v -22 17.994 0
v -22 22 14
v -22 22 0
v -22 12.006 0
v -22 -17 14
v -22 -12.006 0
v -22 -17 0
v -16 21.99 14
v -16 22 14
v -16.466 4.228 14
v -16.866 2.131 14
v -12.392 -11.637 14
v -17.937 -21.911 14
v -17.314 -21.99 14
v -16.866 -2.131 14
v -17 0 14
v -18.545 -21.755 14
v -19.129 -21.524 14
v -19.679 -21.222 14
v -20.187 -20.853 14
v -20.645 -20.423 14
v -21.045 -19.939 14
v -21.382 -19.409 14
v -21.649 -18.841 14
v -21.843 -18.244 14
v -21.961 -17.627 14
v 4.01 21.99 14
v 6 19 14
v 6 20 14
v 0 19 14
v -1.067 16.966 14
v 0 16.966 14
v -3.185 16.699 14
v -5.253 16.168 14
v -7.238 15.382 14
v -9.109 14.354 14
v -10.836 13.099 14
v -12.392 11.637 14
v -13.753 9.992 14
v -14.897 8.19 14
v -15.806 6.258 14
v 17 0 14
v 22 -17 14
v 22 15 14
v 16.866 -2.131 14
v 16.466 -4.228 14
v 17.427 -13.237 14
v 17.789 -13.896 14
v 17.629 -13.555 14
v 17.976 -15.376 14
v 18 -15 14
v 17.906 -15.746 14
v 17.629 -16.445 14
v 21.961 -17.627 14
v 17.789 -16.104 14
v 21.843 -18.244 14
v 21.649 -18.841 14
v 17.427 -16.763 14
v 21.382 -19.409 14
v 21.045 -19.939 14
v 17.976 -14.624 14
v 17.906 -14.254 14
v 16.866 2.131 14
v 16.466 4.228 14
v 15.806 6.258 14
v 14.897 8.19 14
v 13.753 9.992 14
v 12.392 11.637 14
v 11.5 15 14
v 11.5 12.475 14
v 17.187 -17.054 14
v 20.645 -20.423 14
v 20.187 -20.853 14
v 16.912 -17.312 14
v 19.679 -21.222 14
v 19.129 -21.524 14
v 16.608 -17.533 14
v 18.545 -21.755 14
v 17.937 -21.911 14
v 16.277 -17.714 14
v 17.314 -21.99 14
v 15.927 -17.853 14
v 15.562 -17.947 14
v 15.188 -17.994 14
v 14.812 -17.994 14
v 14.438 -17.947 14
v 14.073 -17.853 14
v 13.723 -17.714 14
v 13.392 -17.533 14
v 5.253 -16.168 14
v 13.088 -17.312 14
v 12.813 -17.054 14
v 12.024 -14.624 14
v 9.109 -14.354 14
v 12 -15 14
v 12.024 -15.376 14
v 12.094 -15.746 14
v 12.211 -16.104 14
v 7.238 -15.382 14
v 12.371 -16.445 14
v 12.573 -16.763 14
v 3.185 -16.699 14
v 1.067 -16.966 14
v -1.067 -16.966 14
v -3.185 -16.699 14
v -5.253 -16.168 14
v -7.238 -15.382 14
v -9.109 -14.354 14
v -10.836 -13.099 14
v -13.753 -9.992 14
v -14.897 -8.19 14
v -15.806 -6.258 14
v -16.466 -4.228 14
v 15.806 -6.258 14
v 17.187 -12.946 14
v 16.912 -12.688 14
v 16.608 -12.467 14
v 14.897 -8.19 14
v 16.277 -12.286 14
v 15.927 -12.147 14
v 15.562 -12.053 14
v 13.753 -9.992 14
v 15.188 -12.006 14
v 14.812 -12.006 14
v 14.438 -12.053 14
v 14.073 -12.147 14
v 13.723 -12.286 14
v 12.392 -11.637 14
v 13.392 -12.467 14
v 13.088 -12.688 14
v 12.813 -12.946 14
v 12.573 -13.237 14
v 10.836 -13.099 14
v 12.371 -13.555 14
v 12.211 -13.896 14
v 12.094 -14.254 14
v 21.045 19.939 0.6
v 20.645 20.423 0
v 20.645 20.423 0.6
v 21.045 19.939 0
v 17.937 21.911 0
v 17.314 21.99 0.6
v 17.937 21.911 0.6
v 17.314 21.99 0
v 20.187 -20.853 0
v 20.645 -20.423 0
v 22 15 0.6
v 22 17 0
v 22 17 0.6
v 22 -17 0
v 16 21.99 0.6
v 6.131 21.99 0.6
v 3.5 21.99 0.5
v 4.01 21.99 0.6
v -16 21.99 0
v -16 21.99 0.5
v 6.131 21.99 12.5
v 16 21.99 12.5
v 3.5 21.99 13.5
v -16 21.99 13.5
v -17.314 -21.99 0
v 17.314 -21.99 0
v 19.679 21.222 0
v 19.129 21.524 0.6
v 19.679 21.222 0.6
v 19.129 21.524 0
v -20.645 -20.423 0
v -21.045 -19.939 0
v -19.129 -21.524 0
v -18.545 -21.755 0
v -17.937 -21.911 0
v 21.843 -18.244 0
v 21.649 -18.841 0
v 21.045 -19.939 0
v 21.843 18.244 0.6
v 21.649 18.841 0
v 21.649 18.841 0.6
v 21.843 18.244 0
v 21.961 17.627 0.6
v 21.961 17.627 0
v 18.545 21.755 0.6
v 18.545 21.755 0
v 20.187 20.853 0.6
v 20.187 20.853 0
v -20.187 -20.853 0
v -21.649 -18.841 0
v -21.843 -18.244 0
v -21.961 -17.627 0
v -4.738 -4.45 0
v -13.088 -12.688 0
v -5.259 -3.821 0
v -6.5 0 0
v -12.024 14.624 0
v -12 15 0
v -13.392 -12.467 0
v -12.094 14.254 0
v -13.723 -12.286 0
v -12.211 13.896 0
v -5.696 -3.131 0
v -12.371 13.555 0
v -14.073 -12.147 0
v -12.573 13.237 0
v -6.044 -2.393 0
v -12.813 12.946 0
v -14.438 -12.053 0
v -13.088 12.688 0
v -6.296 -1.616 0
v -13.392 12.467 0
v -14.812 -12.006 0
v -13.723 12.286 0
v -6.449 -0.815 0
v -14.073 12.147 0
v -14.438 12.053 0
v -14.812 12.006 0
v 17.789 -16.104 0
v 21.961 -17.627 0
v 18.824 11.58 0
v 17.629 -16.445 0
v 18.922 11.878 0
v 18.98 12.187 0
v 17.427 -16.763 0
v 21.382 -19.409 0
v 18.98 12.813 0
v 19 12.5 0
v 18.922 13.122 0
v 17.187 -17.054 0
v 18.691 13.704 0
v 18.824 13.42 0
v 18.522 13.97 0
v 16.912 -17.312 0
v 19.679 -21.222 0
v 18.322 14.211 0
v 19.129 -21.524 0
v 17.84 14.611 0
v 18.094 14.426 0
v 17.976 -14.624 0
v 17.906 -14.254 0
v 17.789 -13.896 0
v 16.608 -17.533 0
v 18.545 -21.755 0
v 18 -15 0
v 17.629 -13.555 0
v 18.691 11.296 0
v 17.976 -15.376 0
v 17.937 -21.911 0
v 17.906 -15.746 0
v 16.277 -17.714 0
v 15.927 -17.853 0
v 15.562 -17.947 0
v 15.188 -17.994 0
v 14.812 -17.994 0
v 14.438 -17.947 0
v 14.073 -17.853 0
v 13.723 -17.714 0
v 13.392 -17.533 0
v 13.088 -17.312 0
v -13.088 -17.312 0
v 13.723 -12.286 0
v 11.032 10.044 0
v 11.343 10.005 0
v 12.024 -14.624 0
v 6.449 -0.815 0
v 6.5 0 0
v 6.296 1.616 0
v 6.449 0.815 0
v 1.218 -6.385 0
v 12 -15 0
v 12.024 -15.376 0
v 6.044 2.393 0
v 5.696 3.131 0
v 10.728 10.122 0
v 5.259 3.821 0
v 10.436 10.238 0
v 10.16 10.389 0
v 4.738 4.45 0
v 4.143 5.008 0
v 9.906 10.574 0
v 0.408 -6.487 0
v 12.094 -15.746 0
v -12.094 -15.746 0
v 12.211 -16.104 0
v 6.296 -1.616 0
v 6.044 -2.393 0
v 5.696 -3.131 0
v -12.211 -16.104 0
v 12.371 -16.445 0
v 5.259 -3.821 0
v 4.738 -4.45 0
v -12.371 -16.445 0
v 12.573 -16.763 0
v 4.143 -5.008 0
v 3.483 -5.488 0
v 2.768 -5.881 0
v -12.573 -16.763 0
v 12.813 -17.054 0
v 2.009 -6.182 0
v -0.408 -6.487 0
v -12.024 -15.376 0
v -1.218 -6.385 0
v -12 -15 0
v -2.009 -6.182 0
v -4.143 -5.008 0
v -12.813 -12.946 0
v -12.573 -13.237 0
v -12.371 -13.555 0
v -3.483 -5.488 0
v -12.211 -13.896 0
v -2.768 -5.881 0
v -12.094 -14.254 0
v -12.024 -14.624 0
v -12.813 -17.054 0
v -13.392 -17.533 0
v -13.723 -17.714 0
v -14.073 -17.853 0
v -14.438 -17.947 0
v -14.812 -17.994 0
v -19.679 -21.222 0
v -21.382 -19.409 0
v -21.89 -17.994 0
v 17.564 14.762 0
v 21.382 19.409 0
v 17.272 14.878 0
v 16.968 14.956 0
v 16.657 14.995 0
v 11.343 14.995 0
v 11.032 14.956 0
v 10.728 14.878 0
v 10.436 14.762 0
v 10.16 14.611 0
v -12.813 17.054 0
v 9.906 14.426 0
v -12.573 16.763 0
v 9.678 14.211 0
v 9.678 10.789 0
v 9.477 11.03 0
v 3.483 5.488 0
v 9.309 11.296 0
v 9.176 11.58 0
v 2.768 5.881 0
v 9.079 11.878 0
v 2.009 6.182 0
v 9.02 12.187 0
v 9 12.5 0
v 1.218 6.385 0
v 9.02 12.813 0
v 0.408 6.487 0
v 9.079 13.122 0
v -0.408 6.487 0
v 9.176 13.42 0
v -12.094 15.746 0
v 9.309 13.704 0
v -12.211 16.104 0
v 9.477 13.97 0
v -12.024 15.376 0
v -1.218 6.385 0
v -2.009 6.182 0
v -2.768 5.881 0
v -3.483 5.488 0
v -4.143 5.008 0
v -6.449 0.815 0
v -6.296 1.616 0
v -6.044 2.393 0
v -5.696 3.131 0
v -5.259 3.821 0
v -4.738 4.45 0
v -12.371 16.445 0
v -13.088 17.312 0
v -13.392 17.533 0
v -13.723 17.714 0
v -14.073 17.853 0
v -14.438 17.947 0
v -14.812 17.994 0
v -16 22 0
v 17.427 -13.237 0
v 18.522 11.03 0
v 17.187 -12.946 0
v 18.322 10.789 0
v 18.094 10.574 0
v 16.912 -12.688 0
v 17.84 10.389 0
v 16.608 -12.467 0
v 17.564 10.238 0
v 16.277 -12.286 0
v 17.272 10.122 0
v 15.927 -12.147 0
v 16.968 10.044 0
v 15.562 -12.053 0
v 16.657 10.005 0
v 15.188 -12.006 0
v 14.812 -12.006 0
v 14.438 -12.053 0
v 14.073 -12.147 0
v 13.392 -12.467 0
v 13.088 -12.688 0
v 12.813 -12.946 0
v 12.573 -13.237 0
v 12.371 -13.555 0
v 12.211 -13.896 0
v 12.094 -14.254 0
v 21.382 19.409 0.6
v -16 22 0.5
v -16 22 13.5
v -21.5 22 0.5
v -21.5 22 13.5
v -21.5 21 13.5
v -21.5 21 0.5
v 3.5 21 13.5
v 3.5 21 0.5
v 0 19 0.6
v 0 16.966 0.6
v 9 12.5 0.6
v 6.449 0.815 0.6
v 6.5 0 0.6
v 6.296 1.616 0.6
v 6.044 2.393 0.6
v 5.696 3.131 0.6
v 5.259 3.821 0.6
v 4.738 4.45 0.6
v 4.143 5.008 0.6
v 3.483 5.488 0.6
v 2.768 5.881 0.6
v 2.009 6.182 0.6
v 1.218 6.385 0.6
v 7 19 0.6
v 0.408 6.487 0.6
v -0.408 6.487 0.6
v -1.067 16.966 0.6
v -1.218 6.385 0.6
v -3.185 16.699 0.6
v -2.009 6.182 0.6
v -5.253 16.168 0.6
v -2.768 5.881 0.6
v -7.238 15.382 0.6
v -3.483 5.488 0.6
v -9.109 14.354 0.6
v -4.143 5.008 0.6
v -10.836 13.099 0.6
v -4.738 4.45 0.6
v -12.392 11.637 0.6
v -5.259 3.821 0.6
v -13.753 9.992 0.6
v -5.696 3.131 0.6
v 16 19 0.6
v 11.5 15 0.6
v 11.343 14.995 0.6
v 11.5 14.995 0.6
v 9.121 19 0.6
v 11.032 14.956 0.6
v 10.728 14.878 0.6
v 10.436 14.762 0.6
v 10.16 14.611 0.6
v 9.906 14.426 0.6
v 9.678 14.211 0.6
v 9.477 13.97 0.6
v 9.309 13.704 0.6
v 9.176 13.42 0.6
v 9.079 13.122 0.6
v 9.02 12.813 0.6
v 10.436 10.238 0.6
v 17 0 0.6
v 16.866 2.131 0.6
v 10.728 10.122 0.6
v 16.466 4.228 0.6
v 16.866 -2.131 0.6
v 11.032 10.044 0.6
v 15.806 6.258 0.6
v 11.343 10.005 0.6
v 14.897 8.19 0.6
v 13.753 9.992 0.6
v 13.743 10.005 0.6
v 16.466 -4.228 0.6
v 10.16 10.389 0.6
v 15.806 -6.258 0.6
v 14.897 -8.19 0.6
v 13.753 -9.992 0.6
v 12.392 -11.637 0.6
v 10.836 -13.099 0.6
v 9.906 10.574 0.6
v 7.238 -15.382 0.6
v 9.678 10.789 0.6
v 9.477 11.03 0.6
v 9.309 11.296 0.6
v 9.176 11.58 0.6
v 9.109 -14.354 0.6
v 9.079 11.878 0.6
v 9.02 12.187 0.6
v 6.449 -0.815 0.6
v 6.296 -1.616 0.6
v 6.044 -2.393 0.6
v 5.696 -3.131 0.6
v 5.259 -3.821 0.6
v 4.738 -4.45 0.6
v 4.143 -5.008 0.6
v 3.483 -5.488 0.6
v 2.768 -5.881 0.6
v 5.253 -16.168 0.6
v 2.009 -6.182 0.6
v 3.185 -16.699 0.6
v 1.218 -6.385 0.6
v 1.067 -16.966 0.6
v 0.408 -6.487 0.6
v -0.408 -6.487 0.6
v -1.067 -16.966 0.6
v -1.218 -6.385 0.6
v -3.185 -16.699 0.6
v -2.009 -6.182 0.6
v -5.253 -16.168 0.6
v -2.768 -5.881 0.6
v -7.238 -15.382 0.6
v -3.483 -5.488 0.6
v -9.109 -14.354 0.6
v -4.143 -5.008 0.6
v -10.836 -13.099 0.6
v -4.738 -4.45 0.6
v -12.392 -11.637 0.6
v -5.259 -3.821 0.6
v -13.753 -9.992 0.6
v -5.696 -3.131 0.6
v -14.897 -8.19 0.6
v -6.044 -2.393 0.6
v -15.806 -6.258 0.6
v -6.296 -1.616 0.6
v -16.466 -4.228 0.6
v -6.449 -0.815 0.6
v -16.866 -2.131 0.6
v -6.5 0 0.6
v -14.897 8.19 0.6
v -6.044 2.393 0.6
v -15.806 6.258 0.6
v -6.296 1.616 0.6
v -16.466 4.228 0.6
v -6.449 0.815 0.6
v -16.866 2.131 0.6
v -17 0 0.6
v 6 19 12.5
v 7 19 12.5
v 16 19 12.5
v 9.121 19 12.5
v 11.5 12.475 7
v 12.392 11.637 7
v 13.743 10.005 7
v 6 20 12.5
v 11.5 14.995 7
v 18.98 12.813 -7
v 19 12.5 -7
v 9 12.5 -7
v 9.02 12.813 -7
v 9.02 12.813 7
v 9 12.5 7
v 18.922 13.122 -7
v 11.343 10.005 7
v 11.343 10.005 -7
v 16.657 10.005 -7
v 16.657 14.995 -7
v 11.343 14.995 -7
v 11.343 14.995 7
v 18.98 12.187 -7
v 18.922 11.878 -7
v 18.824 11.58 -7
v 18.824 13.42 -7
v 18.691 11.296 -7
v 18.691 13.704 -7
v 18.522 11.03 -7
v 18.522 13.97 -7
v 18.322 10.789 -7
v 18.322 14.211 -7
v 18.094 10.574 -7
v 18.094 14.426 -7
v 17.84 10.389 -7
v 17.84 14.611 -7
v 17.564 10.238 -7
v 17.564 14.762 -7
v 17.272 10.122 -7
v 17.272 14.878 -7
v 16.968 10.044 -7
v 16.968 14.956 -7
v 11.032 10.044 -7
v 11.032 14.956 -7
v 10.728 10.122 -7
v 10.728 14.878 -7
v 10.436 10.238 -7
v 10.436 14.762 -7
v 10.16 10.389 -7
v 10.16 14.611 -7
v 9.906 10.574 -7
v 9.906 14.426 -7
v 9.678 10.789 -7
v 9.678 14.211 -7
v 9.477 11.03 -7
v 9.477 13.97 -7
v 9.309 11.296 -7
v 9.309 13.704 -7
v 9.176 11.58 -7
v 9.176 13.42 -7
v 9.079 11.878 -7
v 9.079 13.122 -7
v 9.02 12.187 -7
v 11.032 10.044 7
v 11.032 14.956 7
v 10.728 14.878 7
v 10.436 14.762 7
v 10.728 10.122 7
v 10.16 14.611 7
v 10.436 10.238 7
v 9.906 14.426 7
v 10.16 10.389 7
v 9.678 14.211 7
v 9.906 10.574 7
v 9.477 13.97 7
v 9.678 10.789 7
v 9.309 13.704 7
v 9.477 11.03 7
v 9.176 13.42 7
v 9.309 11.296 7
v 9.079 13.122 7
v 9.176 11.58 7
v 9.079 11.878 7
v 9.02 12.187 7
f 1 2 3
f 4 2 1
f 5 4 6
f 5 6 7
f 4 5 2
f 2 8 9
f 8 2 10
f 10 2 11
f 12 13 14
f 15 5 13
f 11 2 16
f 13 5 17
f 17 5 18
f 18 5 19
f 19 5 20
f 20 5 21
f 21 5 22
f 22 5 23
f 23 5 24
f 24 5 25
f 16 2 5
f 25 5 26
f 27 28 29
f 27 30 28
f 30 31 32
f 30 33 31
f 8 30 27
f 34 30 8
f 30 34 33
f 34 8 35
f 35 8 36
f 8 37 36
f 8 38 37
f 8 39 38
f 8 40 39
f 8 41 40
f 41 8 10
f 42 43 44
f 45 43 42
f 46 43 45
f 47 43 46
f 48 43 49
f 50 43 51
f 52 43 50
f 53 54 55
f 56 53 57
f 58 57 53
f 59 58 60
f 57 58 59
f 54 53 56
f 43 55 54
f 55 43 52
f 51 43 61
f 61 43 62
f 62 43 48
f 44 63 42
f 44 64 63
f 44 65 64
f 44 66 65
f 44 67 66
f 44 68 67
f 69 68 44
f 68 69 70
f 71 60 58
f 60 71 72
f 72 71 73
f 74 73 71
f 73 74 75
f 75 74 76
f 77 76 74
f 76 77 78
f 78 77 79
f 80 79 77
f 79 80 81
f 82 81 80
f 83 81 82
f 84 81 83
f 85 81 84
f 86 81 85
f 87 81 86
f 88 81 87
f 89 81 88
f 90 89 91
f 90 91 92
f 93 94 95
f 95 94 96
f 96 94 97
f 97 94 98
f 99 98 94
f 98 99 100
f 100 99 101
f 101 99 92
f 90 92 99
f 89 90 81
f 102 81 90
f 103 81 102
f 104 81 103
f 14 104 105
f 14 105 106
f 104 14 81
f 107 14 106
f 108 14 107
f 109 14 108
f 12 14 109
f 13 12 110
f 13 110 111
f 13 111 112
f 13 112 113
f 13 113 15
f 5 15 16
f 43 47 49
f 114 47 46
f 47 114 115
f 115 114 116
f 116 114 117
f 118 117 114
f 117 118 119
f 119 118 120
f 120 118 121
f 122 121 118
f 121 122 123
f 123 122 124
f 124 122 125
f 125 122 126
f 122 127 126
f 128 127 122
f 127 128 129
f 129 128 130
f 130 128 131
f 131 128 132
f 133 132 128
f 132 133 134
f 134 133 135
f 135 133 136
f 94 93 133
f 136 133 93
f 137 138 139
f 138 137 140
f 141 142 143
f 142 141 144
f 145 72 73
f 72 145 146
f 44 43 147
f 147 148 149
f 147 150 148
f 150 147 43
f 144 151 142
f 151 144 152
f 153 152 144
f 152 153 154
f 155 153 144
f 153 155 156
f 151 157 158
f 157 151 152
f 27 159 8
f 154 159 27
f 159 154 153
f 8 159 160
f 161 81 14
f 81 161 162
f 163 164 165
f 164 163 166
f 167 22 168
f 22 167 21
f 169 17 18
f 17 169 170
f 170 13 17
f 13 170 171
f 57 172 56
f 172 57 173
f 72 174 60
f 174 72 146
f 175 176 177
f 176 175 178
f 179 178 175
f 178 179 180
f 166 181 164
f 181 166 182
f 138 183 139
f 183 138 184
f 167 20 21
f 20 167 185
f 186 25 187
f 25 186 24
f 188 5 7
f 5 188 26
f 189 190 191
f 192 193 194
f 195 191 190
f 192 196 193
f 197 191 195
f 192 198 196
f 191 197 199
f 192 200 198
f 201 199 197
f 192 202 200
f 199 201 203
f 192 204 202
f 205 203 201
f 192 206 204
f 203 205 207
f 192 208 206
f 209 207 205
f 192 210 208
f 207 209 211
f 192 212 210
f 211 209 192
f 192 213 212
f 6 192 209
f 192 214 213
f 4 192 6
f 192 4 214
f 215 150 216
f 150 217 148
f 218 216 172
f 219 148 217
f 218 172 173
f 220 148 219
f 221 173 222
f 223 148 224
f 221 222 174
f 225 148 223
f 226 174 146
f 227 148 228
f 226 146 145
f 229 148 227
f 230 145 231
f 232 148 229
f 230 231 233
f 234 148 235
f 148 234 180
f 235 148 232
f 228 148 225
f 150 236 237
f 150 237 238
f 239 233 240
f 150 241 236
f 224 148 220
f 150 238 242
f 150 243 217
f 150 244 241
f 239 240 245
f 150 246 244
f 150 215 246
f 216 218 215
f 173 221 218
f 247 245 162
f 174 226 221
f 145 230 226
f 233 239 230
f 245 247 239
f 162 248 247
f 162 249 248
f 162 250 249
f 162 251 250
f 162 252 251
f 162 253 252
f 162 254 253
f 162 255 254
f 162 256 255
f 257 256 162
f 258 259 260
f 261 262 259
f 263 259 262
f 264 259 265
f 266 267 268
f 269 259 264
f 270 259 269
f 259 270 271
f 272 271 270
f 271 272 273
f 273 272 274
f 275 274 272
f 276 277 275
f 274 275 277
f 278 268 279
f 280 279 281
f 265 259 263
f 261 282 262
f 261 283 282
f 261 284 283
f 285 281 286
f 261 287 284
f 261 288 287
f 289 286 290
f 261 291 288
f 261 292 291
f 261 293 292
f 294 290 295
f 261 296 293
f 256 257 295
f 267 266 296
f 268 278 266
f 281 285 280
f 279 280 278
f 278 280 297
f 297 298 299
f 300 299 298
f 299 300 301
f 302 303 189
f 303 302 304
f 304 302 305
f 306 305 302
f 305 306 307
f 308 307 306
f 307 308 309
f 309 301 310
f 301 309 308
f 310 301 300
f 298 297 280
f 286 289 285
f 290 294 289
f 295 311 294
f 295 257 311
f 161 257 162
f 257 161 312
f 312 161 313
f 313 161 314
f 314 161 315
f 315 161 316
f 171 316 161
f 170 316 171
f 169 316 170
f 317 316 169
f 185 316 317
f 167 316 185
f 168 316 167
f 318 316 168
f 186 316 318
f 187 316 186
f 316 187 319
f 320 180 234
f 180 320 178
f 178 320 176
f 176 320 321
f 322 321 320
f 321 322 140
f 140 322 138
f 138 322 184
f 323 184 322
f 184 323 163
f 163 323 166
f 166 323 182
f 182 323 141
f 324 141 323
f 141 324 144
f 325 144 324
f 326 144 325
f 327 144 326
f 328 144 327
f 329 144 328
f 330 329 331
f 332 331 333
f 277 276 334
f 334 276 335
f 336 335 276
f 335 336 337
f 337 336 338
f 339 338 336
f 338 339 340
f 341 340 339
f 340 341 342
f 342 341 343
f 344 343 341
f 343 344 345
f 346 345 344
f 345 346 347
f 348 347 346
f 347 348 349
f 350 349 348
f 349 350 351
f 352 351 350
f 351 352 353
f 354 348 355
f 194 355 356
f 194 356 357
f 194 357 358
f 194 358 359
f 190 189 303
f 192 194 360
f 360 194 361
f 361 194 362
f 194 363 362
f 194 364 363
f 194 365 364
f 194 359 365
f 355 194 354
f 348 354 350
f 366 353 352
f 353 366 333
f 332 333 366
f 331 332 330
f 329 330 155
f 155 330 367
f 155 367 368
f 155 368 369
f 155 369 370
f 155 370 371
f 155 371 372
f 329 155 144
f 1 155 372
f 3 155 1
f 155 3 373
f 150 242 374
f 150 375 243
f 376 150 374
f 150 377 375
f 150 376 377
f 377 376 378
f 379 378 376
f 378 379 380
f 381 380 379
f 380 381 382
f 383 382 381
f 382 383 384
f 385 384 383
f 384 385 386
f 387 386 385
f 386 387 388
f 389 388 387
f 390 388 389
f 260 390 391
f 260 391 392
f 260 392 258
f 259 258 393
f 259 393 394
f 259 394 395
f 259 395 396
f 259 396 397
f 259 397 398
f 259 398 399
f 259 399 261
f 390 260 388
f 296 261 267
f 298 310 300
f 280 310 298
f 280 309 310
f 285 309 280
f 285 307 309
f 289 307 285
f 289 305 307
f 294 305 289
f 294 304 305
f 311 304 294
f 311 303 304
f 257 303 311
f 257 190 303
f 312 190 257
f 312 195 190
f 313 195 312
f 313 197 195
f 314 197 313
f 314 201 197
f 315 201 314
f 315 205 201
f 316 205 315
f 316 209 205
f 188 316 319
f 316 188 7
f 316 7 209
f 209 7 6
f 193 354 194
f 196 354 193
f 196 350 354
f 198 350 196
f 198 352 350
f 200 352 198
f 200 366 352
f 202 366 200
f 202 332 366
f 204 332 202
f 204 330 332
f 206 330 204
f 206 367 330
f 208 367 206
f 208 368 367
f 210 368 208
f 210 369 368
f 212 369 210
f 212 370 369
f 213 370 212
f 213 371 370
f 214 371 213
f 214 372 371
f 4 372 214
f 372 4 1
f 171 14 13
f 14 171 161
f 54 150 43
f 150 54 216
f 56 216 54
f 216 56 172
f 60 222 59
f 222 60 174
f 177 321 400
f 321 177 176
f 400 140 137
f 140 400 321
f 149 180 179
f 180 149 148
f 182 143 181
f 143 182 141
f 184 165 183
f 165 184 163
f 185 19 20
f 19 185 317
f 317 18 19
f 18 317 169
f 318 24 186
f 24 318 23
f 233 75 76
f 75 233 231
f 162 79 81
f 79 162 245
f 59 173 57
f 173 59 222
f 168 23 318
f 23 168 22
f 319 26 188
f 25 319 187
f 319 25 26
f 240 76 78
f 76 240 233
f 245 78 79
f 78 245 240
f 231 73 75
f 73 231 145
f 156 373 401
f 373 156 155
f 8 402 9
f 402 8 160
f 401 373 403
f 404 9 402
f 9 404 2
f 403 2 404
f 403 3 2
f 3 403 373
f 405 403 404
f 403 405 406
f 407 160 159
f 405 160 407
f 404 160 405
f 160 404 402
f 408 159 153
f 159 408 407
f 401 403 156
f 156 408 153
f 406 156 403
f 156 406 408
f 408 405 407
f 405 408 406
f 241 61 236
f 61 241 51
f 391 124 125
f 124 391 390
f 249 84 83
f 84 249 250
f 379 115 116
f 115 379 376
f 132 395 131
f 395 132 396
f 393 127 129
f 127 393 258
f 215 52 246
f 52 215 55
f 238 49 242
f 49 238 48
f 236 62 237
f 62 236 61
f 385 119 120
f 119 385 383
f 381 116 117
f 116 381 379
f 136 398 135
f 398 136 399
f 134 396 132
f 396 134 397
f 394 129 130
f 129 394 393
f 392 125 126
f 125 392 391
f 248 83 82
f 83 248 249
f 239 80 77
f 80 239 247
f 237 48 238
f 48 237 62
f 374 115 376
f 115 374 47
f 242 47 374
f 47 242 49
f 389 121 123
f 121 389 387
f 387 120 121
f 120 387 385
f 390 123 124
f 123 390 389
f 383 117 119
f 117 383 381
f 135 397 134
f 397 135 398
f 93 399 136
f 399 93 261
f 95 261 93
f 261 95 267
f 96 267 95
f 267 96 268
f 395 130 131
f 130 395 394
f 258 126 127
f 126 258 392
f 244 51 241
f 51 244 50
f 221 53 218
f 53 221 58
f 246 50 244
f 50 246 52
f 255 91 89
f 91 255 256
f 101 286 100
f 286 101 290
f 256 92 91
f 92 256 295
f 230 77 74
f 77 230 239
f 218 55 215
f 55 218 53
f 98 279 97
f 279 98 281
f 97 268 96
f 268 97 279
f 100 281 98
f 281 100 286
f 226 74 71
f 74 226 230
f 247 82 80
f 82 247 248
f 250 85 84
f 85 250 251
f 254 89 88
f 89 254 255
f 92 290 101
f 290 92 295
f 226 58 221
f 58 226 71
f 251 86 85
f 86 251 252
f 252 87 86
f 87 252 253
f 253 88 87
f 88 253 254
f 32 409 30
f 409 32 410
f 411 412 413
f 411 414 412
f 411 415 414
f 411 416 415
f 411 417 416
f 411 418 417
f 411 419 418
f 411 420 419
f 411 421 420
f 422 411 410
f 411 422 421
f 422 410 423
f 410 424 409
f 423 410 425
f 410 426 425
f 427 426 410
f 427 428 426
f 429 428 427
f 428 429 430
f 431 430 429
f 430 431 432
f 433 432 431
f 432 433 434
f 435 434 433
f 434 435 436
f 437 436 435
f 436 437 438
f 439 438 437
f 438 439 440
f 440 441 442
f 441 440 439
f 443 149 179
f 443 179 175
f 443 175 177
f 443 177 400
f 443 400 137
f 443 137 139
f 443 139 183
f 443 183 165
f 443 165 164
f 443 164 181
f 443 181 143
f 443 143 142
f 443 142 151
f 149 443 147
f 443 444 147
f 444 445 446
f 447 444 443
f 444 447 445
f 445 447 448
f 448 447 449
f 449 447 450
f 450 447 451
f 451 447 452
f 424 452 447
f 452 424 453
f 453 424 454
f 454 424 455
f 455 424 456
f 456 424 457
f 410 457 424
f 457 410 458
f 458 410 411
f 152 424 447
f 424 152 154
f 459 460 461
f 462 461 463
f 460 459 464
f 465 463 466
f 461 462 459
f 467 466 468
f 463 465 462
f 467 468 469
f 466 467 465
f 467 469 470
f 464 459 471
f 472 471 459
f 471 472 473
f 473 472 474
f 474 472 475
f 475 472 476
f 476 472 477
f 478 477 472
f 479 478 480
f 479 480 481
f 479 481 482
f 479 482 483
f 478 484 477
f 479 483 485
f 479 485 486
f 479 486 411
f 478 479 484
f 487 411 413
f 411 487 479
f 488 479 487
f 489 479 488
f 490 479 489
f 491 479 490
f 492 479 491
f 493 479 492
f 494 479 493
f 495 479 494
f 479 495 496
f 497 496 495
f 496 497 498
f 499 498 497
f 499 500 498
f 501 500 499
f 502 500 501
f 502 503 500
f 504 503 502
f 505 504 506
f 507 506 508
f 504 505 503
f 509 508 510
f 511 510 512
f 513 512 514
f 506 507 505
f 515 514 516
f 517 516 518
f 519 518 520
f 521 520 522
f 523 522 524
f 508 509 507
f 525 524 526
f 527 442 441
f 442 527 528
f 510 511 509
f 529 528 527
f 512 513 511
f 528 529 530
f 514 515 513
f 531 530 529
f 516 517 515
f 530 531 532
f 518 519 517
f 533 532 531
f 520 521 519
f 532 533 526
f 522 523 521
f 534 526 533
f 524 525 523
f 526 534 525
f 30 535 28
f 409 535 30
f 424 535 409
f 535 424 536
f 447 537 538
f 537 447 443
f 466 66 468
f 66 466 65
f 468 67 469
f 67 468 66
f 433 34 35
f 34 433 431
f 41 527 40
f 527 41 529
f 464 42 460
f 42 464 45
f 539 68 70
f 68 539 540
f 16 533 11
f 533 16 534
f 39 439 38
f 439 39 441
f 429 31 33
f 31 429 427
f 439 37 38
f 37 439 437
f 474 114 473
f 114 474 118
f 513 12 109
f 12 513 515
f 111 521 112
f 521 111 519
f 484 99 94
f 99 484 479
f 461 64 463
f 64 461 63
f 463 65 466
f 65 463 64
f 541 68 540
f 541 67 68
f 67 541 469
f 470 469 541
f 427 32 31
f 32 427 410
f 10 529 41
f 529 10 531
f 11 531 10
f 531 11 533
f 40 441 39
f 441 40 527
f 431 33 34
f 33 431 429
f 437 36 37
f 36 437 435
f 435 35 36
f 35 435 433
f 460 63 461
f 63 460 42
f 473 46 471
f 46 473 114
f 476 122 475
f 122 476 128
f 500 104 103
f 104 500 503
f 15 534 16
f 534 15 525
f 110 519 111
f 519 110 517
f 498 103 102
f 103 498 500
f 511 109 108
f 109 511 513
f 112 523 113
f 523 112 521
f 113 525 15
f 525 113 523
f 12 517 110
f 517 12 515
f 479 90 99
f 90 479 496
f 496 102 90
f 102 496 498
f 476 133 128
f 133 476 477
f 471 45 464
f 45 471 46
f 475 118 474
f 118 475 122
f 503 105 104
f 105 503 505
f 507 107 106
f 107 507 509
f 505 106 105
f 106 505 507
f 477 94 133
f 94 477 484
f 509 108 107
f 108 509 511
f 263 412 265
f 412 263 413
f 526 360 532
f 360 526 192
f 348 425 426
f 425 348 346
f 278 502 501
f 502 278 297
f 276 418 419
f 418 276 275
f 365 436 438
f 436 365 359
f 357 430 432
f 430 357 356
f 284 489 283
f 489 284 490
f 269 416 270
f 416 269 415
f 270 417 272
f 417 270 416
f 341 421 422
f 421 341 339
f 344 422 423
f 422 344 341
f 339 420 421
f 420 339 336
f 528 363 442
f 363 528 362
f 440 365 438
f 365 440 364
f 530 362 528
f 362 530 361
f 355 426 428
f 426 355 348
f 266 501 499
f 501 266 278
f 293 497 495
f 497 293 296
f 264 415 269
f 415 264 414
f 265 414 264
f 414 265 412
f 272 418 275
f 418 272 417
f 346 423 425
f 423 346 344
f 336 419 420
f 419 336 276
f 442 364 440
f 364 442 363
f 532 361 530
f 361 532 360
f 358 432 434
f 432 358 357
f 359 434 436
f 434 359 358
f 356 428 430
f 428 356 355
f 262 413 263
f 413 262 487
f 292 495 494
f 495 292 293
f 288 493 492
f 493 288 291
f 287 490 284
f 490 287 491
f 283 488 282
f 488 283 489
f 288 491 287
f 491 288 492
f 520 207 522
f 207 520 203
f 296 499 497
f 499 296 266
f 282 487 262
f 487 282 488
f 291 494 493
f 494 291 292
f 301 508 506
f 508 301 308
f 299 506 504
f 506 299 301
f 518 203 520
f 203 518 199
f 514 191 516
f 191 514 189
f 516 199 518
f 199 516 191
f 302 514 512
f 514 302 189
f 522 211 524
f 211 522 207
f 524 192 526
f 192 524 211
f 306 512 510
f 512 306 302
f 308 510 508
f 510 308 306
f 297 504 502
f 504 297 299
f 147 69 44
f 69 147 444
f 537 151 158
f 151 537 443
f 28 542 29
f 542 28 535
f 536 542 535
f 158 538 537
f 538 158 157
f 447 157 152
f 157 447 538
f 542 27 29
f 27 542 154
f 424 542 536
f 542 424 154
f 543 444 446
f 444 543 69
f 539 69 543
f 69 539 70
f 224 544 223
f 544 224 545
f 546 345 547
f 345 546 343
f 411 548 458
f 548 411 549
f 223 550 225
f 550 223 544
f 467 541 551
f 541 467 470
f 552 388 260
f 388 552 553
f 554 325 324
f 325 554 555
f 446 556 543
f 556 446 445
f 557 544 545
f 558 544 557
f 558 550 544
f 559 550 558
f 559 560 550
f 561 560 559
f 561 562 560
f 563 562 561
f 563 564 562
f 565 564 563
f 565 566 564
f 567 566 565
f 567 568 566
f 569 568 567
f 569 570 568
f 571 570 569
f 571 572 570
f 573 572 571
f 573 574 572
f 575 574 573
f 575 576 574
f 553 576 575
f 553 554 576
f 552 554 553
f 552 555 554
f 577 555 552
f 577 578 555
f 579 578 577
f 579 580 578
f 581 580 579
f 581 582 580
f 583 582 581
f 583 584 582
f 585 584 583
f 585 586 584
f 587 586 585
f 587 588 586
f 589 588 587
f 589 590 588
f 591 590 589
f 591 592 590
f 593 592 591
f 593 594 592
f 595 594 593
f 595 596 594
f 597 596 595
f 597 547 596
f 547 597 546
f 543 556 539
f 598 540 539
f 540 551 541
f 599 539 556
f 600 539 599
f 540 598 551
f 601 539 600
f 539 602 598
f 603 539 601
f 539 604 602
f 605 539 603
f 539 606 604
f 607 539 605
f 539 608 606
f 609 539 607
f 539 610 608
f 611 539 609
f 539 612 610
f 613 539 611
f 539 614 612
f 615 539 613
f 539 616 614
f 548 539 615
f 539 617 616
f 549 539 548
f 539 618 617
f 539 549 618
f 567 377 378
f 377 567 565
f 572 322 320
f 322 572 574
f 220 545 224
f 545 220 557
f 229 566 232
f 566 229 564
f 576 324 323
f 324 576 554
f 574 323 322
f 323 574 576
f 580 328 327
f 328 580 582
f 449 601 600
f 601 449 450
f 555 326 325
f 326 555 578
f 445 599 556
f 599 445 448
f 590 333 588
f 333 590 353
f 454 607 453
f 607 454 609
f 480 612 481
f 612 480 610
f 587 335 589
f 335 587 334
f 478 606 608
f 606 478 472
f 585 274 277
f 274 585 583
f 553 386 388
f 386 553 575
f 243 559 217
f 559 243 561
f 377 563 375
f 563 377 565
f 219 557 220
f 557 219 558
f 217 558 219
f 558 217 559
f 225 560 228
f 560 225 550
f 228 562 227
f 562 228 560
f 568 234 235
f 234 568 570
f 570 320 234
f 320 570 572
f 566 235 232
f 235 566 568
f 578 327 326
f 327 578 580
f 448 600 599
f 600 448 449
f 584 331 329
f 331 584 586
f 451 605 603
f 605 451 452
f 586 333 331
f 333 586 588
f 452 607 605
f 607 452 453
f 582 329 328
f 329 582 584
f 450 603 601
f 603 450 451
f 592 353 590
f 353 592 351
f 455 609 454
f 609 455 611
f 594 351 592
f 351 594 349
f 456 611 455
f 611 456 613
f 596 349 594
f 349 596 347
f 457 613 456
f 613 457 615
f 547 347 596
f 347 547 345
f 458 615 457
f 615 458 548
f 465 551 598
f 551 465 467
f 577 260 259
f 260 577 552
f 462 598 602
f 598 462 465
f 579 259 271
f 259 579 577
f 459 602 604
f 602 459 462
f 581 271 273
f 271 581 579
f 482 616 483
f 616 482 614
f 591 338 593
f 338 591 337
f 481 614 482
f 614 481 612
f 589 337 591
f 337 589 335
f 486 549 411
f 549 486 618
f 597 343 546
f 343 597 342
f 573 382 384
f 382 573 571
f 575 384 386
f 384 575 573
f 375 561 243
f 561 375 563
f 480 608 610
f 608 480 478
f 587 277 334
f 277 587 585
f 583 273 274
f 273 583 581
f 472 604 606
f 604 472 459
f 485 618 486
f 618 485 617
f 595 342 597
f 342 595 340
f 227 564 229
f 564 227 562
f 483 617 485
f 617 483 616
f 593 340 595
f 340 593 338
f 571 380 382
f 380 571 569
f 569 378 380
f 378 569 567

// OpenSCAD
$fn = 50;


union() {
	difference() {
		union() {
			hull() {
				translate(v = [-17.0000000000, 17.0000000000, 0]) {
					cylinder(h = 14, r = 5);
				}
				translate(v = [17.0000000000, 17.0000000000, 0]) {
					cylinder(h = 14, r = 5);
				}
				translate(v = [-17.0000000000, -17.0000000000, 0]) {
					cylinder(h = 14, r = 5);
				}
				translate(v = [17.0000000000, -17.0000000000, 0]) {
					cylinder(h = 14, r = 5);
				}
			}
			translate(v = [-22.0000000000, 16.0000000000, 0]) {
				cube(size = [6, 6, 14]);
			}
		}
		union() {
			translate(v = [-22.5000000000, -15.0000000000, -250.0000000000]) {
				rotate(a = [0, 0, 0]) {
					difference() {
						union() {
							hull() {
								translate(v = [7.5000000000, 0, 0]) {
									cylinder(h = 250, r = 3.0000000000, r1 = 3.0000000000, r2 = 3.0000000000);
								}
								translate(v = [-7.5000000000, 0, 0]) {
									cylinder(h = 250, r = 3.0000000000, r1 = 3.0000000000, r2 = 3.0000000000);
								}
							}
						}
						union();
					}
				}
			}
			translate(v = [-22.5000000000, 15.0000000000, -250.0000000000]) {
				rotate(a = [0, 0, 0]) {
					difference() {
						union() {
							hull() {
								translate(v = [7.5000000000, 0, 0]) {
									cylinder(h = 250, r = 3.0000000000, r1 = 3.0000000000, r2 = 3.0000000000);
								}
								translate(v = [-7.5000000000, 0, 0]) {
									cylinder(h = 250, r = 3.0000000000, r1 = 3.0000000000, r2 = 3.0000000000);
								}
							}
						}
						union();
					}
				}
			}
			translate(v = [-21.5000000000, 21.0000000000, 0.5000000000]) {
				cube(size = [25, 1, 13.0000000000]);
			}
			translate(v = [15.0000000000, -15.0000000000, 0]) {
				cylinder(h = 100, r = 3.0000000000);
			}
			translate(v = [0.0000000000, 11.0000000000, 0.6000000000]) {
				cube(size = [11, 8, 16.4000000000]);
			}
			translate(v = [0, 0, 0.6000000000]) {
				cylinder(h = 16.4000000000, r = 17.0000000000);
			}
			translate(v = [0, 0, -7.0000000000]) {
				cylinder(h = 14, r = 6.5000000000);
			}
			translate(v = [0.0000000000, 15.0000000000, 0.6000000000]) {
				cube(size = [22.0000000000, 4, 16.4000000000]);
			}
			translate(v = [16.0000000000, 15.0000000000, 0.6000000000]) {
				cube(size = [6, 7, 16.4000000000]);
			}
			translate(v = [6.0000000000, 15.0000000000, 12.5000000000]) {
				cube(size = [16, 7, 1.5000000000]);
			}
			translate(v = [3.2500000000, 22.7500000000, 0.6000000000]) {
				rotate(a = [0, 0, -45]) {
					cube(size = [7.5000000000, 1.5000000000, 16.4000000000]);
				}
			}
			translate(v = [2.5000000000, 10.0000000000, 0.6000000000]) {
				cube(size = [9.0000000000, 5, 13.4000000000]);
			}
		}
	}
	union() {
		translate(v = [14, 12.5000000000, -7.0000000000]) {
			rotate(a = [0, 0, 0]) {
				difference() {
					union() {
						#hull() {
							#translate(v = [2.5000000000, 0, 0]) {
								cylinder(h = 14, r = 2.5000000000, r1 = 2.5000000000, r2 = 2.5000000000);
							}
							#translate(v = [-2.5000000000, 0, 0]) {
								cylinder(h = 14, r = 2.5000000000, r1 = 2.5000000000, r2 = 2.5000000000);
							}
						}
					}
					union();
				}
			}
		}
	}
}
